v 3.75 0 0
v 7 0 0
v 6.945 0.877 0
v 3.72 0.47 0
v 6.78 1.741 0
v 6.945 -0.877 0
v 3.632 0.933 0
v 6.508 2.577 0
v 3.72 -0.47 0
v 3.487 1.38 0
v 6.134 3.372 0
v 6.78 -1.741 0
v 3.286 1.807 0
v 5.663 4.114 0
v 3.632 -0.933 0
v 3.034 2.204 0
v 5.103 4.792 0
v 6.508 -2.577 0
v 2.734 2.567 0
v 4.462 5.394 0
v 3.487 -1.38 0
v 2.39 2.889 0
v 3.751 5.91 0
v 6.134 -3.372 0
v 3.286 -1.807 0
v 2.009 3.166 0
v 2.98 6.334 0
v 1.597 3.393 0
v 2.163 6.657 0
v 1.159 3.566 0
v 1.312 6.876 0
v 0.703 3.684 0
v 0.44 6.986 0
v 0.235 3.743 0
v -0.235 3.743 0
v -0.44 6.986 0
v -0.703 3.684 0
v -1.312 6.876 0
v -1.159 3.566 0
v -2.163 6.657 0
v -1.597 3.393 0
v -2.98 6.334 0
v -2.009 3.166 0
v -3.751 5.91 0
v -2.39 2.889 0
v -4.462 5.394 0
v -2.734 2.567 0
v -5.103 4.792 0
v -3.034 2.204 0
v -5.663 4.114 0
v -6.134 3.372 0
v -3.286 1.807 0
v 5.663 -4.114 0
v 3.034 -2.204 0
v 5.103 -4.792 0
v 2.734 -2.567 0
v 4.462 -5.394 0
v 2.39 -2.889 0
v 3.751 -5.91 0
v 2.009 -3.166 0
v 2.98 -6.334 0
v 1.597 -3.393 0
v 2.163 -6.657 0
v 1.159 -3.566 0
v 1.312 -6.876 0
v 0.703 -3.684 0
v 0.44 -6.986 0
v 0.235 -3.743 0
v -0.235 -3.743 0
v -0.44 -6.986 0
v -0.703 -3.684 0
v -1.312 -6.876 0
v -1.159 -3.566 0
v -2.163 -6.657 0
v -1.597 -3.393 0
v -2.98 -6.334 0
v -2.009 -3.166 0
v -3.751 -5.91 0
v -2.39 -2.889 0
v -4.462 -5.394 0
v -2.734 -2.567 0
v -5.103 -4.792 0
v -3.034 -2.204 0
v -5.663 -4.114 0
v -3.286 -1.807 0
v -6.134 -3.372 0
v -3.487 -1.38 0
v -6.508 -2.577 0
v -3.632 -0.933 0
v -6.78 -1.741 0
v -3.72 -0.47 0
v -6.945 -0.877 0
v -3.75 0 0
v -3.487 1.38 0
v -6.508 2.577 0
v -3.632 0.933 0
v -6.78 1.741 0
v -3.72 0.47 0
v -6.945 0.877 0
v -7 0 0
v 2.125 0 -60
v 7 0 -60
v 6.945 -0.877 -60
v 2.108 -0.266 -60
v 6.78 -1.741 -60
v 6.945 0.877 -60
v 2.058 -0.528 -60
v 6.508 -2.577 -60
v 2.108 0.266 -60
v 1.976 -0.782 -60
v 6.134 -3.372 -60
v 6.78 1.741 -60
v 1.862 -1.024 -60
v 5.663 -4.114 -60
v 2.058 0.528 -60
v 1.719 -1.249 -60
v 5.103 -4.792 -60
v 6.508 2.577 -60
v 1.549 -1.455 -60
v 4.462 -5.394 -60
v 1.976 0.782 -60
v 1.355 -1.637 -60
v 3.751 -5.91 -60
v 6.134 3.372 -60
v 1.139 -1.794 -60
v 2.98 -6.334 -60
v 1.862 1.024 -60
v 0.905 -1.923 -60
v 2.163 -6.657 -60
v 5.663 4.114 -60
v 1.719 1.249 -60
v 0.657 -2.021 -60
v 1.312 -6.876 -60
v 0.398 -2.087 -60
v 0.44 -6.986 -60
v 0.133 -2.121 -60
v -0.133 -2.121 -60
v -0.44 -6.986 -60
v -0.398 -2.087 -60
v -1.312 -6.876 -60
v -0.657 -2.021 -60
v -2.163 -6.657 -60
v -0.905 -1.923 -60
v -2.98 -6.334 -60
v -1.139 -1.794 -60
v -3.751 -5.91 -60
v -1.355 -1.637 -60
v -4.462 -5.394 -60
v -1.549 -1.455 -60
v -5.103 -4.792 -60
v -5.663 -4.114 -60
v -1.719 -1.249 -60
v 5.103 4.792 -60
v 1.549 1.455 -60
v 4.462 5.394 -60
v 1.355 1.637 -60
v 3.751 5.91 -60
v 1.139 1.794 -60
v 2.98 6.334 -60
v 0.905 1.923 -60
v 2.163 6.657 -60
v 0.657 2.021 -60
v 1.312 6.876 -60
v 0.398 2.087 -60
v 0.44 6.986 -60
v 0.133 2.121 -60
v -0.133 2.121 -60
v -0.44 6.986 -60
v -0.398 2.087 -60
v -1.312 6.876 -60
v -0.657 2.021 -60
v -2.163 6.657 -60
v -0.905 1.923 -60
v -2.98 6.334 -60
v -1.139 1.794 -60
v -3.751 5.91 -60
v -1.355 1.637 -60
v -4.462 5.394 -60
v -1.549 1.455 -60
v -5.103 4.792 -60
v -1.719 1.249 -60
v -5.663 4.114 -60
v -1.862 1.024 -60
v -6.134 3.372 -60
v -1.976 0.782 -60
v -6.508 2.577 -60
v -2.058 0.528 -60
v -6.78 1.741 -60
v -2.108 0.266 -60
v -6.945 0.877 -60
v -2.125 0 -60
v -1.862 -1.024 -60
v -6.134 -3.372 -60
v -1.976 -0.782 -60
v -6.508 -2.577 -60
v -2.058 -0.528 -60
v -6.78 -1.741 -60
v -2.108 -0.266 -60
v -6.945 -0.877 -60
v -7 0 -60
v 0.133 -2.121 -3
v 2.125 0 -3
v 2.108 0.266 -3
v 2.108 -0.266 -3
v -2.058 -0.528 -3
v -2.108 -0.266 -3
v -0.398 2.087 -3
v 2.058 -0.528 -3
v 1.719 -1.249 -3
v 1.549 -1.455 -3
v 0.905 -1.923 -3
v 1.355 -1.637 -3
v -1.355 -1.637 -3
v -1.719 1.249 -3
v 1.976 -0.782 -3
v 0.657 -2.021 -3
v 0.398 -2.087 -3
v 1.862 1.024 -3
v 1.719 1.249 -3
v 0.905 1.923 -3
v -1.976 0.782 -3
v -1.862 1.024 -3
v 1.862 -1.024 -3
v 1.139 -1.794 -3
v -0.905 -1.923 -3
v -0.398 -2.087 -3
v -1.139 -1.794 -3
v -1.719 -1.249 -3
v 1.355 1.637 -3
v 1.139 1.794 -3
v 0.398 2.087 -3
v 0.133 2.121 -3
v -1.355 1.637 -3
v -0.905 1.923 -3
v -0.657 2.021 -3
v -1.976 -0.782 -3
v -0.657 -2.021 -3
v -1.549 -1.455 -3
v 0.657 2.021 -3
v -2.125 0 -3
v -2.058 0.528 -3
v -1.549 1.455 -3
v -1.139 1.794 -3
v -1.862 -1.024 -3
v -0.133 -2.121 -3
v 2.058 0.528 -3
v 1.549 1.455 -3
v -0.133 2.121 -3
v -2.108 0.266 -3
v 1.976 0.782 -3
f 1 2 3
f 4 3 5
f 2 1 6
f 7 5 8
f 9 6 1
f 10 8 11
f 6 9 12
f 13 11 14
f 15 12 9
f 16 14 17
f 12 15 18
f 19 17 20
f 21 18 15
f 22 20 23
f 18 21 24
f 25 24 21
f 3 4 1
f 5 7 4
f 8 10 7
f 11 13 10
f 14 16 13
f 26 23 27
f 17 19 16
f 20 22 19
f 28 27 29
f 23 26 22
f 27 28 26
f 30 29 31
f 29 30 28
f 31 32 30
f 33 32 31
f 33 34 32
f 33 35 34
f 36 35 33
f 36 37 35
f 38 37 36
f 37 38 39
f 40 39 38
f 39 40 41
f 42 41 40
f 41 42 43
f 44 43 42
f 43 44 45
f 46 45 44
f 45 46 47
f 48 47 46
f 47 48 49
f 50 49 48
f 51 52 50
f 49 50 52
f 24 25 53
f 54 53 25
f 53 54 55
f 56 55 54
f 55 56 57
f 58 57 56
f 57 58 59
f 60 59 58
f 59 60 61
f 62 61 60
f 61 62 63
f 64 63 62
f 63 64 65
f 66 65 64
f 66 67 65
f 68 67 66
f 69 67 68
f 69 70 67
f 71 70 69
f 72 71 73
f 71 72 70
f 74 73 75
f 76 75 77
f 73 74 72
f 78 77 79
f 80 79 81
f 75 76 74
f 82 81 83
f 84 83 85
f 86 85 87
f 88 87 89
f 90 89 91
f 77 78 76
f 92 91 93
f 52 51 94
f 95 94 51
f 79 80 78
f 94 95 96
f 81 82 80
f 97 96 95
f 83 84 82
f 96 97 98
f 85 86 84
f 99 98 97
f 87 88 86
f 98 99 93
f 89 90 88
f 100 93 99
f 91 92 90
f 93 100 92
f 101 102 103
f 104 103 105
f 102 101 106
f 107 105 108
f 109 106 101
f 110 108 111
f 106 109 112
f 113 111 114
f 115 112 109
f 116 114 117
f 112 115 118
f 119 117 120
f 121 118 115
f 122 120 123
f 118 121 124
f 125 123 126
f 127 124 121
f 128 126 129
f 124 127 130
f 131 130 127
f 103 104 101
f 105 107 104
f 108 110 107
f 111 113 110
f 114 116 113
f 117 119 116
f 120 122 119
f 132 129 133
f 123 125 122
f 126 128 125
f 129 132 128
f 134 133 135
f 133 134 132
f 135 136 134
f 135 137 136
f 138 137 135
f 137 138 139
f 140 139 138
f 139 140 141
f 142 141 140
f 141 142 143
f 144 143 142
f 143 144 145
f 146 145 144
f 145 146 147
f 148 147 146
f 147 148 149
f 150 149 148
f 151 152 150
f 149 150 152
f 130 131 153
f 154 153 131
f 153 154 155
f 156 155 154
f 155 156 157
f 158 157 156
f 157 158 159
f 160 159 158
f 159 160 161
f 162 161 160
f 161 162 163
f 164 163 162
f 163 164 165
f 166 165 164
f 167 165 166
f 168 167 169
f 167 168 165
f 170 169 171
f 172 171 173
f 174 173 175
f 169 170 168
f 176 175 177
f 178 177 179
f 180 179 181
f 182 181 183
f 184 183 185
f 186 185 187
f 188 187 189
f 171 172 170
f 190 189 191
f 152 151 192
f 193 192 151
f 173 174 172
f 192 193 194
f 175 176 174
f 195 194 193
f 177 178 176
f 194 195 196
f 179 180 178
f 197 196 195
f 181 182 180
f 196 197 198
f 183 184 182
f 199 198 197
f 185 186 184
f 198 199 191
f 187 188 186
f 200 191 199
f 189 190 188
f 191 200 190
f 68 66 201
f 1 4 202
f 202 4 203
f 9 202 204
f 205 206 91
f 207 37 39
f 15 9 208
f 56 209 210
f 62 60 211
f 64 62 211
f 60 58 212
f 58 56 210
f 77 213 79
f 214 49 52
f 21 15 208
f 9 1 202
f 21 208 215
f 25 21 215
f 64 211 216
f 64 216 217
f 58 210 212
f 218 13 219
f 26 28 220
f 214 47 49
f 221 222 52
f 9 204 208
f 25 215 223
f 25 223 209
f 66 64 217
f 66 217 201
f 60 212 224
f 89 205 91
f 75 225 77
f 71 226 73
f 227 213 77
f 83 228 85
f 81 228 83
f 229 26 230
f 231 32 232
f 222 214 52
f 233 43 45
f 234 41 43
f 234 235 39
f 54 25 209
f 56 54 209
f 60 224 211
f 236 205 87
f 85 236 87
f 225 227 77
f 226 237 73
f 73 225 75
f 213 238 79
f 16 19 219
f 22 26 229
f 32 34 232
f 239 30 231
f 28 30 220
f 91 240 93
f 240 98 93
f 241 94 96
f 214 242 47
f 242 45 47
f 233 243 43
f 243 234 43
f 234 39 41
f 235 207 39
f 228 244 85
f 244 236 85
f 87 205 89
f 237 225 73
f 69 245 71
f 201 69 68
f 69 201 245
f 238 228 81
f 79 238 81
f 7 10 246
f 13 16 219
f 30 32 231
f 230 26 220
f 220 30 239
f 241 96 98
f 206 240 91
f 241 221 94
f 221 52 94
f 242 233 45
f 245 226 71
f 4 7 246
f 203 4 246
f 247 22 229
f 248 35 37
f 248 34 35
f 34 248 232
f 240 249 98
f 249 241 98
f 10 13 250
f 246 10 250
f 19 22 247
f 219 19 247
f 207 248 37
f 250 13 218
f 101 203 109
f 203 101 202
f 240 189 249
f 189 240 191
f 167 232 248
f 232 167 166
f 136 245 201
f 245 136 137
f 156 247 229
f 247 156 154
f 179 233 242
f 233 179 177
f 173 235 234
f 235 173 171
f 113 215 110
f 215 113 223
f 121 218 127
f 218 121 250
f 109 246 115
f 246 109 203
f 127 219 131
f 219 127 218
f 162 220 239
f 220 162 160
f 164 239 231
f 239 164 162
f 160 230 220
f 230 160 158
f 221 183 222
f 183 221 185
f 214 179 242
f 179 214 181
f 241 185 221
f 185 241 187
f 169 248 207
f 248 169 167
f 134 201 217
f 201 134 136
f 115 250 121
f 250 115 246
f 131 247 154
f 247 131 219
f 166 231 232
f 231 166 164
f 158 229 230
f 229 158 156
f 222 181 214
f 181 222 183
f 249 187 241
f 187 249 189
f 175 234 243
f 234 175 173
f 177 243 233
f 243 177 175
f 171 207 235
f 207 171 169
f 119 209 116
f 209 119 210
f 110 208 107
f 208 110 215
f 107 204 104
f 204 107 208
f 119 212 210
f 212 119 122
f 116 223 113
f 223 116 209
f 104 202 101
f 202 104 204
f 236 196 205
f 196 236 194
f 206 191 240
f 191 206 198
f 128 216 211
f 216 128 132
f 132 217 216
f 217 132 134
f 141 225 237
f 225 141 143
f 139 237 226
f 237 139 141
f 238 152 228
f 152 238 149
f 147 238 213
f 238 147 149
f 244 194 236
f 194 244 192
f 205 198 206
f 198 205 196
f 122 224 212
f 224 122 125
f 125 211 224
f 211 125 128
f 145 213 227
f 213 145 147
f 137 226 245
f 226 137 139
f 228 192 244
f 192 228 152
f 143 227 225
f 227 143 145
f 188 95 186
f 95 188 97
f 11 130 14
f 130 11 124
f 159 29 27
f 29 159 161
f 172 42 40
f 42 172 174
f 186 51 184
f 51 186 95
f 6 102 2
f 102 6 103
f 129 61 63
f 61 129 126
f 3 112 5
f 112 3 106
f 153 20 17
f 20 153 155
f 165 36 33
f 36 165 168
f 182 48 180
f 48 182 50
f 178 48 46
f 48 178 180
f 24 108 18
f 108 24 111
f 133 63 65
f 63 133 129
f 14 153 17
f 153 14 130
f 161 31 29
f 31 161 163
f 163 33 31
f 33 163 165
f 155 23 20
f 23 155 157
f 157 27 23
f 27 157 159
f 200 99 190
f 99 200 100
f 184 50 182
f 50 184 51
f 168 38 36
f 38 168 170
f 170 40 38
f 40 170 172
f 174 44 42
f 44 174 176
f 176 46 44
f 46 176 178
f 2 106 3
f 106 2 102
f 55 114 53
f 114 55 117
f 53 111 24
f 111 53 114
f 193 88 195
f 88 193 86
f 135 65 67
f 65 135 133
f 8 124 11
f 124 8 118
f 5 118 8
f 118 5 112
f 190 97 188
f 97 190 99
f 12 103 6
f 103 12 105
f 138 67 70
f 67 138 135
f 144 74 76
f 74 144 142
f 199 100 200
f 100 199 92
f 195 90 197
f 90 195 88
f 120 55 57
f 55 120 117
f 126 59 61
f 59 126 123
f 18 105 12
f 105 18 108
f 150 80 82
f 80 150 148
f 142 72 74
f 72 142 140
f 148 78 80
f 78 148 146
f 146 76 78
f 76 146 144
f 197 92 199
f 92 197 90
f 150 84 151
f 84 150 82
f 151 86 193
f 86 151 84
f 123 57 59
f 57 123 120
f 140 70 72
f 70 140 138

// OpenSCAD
$fn = 50;


difference() {
	union() {
		translate(v = [0, 0, -60.0000000000]) {
			cylinder(h = 60, r = 7.0000000000);
		}
		cylinder(h = 0, r = 16.0000000000);
	}
	union() {
		translate(v = [0, 0, 0]) {
			rotate(a = [0, 0, 0]) {
				difference() {
					union() {
						#translate(v = [0, 0, -60.0000000000]) {
							cylinder(h = 60, r = 2.0000000000);
						}
						#translate(v = [0, 0, -3]) {
							cylinder(h = 3, r1 = 2.1250000000, r2 = 3.7500000000);
						}
						#translate(v = [0, 0, -60.0000000000]) {
							cylinder(h = 60, r = 2.1250000000);
						}
						#translate(v = [0, 0, -60.0000000000]) {
							cylinder(h = 60, r = 2.0000000000);
						}
					}
					union();
				}
			}
		}
	}
}
